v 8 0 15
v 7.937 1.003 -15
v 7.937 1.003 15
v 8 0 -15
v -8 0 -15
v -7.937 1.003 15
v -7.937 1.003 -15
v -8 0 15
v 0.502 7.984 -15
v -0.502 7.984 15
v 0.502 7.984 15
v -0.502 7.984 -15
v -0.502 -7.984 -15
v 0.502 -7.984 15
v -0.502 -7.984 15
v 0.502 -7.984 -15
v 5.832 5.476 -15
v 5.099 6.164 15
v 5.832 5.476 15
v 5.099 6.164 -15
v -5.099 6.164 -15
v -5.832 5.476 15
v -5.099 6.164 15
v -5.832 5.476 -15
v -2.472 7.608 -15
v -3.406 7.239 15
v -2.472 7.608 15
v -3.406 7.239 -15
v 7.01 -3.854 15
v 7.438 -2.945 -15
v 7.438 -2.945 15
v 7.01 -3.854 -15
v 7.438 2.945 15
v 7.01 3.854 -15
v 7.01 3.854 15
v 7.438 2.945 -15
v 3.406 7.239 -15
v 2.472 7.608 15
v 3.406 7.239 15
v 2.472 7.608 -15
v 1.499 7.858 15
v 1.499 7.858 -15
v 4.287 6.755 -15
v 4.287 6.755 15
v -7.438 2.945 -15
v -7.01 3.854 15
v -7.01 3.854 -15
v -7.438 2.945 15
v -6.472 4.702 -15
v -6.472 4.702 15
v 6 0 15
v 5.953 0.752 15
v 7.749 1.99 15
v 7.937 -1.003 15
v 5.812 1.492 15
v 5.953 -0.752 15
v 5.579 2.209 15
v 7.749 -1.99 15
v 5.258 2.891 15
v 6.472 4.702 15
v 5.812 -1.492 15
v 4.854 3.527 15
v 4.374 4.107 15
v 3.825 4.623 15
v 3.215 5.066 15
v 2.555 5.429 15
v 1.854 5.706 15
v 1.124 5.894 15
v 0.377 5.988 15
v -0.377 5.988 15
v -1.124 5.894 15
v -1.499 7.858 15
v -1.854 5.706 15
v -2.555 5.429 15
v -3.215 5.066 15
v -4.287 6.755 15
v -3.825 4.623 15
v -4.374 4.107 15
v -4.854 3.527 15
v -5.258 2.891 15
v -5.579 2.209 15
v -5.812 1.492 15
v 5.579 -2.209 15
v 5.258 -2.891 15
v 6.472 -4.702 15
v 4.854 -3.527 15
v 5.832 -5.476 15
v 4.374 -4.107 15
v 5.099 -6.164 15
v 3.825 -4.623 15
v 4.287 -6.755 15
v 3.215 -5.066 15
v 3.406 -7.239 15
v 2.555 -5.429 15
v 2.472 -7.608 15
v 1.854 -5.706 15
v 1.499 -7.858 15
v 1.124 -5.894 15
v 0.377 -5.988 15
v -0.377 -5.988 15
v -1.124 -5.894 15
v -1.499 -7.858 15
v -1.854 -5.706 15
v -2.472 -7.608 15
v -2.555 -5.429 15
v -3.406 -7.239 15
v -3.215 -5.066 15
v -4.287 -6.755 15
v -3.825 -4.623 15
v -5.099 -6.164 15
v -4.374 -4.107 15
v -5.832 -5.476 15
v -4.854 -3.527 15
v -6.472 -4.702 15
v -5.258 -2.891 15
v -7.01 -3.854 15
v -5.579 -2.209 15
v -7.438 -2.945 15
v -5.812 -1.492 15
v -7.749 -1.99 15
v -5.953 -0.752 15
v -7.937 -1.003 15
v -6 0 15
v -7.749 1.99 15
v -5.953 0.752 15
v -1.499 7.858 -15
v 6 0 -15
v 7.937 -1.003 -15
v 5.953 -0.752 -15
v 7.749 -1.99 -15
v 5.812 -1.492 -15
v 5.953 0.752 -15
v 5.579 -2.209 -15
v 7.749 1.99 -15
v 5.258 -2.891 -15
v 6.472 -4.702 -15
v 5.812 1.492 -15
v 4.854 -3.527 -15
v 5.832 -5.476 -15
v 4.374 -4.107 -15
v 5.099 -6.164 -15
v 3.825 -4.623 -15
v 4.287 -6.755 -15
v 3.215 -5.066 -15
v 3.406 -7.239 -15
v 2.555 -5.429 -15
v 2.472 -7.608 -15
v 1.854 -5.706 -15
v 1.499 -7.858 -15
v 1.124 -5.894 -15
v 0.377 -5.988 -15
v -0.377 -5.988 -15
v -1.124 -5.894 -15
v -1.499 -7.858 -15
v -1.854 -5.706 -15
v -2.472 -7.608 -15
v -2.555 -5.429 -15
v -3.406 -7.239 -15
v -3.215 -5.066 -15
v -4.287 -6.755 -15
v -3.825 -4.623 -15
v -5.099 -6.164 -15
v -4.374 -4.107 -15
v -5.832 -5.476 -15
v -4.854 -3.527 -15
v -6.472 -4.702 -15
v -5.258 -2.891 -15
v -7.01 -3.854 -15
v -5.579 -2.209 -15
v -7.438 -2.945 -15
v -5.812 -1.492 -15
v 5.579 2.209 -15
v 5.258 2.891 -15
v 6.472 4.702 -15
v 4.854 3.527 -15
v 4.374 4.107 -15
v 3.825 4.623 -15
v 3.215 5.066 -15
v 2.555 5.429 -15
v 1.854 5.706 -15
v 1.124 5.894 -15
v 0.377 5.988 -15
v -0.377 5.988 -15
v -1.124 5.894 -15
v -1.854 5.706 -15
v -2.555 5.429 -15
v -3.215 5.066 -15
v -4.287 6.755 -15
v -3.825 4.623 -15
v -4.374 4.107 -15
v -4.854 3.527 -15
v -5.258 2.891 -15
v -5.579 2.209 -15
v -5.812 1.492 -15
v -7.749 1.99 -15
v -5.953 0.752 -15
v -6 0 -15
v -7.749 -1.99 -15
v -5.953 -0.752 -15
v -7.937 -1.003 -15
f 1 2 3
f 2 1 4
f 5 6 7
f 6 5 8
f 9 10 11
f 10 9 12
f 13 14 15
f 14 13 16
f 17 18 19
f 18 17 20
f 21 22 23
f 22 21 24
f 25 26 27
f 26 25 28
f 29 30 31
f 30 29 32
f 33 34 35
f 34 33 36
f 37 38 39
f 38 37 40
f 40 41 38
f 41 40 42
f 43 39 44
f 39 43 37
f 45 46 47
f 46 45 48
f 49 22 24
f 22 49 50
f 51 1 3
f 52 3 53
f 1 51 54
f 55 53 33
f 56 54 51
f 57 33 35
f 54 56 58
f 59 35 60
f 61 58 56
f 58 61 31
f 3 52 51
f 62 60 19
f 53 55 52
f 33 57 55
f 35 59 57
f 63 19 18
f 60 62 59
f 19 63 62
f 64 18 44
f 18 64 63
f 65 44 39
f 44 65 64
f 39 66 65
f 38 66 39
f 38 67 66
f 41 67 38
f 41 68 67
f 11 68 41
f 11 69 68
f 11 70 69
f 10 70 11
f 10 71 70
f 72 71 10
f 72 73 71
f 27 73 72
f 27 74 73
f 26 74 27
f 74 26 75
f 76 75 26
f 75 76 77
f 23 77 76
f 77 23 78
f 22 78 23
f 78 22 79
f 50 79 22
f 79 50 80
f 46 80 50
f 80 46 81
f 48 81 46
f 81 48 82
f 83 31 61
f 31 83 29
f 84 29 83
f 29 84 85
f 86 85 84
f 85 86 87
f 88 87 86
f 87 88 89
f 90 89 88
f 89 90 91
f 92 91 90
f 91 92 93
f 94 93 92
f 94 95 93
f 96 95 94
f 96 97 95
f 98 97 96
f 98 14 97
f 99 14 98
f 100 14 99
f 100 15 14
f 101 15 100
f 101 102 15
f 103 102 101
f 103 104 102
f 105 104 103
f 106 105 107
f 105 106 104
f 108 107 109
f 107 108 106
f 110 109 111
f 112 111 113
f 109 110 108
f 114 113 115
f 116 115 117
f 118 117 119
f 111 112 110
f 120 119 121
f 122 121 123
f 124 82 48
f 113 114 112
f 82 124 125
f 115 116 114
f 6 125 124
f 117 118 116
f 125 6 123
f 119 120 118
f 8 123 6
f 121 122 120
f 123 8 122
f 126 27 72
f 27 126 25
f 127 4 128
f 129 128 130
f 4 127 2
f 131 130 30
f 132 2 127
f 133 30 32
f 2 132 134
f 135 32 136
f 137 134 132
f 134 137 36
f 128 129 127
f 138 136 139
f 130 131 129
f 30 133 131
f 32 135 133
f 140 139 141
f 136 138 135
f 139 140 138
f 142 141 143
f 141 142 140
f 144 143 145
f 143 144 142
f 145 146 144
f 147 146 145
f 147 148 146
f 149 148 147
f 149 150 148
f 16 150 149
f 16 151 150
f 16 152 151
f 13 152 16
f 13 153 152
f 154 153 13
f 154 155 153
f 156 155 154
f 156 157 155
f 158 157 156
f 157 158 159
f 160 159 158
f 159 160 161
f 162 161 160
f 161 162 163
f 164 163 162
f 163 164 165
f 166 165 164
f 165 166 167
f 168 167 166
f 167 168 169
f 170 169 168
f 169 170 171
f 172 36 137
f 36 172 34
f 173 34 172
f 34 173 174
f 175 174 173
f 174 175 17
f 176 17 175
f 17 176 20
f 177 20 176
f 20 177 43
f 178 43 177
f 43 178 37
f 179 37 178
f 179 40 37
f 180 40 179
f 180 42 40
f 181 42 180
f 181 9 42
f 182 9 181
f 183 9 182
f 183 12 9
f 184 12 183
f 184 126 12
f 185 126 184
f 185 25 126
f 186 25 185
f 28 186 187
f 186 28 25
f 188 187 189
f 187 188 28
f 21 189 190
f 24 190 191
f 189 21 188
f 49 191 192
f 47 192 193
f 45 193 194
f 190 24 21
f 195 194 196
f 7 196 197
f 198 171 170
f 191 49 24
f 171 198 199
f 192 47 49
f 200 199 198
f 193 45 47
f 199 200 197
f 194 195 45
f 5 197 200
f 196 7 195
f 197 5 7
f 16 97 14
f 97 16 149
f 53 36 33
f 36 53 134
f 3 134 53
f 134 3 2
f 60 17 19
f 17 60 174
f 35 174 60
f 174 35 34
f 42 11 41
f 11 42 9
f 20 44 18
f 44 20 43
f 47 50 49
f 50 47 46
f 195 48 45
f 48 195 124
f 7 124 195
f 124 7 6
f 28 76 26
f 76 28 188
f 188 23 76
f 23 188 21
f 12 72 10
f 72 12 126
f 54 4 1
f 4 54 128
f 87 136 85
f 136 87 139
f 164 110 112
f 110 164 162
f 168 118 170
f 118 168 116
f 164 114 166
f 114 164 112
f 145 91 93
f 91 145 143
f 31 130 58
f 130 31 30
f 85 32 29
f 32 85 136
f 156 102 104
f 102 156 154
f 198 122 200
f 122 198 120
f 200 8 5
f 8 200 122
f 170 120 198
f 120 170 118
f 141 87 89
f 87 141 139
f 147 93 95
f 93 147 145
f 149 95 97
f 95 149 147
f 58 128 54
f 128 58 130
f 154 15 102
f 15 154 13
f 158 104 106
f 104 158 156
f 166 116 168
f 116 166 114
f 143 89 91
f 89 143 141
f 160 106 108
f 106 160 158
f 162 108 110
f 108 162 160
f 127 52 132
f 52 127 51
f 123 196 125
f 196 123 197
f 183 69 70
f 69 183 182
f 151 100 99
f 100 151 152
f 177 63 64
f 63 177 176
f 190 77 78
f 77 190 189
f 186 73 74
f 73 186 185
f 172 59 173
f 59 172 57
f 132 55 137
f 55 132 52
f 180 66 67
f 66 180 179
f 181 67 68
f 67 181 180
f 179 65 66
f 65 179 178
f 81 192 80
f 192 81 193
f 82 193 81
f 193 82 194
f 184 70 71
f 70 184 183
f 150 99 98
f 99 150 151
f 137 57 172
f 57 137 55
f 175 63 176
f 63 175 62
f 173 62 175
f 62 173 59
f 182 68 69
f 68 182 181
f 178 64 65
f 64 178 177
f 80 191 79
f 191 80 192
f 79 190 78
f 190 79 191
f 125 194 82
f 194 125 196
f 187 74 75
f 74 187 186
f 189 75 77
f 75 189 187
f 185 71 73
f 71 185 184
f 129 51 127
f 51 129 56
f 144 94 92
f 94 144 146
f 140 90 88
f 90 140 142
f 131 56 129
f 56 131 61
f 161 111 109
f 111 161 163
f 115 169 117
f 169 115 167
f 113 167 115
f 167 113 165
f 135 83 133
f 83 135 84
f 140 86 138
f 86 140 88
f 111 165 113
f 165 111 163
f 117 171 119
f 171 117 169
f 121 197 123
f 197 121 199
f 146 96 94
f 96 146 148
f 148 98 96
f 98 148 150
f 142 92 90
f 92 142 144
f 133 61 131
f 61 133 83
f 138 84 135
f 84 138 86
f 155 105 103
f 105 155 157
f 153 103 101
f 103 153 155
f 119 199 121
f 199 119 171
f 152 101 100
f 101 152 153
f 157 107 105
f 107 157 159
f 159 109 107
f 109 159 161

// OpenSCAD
$fn = 50;


difference() {
	union() {
		translate(v = [0, 0, -15.0000000000]) {
			cylinder(h = 30, r = 8.0000000000);
		}
	}
	union() {
		translate(v = [0, 0, -100.0000000000]) {
			cylinder(h = 200, r = 6);
		}
	}
}
